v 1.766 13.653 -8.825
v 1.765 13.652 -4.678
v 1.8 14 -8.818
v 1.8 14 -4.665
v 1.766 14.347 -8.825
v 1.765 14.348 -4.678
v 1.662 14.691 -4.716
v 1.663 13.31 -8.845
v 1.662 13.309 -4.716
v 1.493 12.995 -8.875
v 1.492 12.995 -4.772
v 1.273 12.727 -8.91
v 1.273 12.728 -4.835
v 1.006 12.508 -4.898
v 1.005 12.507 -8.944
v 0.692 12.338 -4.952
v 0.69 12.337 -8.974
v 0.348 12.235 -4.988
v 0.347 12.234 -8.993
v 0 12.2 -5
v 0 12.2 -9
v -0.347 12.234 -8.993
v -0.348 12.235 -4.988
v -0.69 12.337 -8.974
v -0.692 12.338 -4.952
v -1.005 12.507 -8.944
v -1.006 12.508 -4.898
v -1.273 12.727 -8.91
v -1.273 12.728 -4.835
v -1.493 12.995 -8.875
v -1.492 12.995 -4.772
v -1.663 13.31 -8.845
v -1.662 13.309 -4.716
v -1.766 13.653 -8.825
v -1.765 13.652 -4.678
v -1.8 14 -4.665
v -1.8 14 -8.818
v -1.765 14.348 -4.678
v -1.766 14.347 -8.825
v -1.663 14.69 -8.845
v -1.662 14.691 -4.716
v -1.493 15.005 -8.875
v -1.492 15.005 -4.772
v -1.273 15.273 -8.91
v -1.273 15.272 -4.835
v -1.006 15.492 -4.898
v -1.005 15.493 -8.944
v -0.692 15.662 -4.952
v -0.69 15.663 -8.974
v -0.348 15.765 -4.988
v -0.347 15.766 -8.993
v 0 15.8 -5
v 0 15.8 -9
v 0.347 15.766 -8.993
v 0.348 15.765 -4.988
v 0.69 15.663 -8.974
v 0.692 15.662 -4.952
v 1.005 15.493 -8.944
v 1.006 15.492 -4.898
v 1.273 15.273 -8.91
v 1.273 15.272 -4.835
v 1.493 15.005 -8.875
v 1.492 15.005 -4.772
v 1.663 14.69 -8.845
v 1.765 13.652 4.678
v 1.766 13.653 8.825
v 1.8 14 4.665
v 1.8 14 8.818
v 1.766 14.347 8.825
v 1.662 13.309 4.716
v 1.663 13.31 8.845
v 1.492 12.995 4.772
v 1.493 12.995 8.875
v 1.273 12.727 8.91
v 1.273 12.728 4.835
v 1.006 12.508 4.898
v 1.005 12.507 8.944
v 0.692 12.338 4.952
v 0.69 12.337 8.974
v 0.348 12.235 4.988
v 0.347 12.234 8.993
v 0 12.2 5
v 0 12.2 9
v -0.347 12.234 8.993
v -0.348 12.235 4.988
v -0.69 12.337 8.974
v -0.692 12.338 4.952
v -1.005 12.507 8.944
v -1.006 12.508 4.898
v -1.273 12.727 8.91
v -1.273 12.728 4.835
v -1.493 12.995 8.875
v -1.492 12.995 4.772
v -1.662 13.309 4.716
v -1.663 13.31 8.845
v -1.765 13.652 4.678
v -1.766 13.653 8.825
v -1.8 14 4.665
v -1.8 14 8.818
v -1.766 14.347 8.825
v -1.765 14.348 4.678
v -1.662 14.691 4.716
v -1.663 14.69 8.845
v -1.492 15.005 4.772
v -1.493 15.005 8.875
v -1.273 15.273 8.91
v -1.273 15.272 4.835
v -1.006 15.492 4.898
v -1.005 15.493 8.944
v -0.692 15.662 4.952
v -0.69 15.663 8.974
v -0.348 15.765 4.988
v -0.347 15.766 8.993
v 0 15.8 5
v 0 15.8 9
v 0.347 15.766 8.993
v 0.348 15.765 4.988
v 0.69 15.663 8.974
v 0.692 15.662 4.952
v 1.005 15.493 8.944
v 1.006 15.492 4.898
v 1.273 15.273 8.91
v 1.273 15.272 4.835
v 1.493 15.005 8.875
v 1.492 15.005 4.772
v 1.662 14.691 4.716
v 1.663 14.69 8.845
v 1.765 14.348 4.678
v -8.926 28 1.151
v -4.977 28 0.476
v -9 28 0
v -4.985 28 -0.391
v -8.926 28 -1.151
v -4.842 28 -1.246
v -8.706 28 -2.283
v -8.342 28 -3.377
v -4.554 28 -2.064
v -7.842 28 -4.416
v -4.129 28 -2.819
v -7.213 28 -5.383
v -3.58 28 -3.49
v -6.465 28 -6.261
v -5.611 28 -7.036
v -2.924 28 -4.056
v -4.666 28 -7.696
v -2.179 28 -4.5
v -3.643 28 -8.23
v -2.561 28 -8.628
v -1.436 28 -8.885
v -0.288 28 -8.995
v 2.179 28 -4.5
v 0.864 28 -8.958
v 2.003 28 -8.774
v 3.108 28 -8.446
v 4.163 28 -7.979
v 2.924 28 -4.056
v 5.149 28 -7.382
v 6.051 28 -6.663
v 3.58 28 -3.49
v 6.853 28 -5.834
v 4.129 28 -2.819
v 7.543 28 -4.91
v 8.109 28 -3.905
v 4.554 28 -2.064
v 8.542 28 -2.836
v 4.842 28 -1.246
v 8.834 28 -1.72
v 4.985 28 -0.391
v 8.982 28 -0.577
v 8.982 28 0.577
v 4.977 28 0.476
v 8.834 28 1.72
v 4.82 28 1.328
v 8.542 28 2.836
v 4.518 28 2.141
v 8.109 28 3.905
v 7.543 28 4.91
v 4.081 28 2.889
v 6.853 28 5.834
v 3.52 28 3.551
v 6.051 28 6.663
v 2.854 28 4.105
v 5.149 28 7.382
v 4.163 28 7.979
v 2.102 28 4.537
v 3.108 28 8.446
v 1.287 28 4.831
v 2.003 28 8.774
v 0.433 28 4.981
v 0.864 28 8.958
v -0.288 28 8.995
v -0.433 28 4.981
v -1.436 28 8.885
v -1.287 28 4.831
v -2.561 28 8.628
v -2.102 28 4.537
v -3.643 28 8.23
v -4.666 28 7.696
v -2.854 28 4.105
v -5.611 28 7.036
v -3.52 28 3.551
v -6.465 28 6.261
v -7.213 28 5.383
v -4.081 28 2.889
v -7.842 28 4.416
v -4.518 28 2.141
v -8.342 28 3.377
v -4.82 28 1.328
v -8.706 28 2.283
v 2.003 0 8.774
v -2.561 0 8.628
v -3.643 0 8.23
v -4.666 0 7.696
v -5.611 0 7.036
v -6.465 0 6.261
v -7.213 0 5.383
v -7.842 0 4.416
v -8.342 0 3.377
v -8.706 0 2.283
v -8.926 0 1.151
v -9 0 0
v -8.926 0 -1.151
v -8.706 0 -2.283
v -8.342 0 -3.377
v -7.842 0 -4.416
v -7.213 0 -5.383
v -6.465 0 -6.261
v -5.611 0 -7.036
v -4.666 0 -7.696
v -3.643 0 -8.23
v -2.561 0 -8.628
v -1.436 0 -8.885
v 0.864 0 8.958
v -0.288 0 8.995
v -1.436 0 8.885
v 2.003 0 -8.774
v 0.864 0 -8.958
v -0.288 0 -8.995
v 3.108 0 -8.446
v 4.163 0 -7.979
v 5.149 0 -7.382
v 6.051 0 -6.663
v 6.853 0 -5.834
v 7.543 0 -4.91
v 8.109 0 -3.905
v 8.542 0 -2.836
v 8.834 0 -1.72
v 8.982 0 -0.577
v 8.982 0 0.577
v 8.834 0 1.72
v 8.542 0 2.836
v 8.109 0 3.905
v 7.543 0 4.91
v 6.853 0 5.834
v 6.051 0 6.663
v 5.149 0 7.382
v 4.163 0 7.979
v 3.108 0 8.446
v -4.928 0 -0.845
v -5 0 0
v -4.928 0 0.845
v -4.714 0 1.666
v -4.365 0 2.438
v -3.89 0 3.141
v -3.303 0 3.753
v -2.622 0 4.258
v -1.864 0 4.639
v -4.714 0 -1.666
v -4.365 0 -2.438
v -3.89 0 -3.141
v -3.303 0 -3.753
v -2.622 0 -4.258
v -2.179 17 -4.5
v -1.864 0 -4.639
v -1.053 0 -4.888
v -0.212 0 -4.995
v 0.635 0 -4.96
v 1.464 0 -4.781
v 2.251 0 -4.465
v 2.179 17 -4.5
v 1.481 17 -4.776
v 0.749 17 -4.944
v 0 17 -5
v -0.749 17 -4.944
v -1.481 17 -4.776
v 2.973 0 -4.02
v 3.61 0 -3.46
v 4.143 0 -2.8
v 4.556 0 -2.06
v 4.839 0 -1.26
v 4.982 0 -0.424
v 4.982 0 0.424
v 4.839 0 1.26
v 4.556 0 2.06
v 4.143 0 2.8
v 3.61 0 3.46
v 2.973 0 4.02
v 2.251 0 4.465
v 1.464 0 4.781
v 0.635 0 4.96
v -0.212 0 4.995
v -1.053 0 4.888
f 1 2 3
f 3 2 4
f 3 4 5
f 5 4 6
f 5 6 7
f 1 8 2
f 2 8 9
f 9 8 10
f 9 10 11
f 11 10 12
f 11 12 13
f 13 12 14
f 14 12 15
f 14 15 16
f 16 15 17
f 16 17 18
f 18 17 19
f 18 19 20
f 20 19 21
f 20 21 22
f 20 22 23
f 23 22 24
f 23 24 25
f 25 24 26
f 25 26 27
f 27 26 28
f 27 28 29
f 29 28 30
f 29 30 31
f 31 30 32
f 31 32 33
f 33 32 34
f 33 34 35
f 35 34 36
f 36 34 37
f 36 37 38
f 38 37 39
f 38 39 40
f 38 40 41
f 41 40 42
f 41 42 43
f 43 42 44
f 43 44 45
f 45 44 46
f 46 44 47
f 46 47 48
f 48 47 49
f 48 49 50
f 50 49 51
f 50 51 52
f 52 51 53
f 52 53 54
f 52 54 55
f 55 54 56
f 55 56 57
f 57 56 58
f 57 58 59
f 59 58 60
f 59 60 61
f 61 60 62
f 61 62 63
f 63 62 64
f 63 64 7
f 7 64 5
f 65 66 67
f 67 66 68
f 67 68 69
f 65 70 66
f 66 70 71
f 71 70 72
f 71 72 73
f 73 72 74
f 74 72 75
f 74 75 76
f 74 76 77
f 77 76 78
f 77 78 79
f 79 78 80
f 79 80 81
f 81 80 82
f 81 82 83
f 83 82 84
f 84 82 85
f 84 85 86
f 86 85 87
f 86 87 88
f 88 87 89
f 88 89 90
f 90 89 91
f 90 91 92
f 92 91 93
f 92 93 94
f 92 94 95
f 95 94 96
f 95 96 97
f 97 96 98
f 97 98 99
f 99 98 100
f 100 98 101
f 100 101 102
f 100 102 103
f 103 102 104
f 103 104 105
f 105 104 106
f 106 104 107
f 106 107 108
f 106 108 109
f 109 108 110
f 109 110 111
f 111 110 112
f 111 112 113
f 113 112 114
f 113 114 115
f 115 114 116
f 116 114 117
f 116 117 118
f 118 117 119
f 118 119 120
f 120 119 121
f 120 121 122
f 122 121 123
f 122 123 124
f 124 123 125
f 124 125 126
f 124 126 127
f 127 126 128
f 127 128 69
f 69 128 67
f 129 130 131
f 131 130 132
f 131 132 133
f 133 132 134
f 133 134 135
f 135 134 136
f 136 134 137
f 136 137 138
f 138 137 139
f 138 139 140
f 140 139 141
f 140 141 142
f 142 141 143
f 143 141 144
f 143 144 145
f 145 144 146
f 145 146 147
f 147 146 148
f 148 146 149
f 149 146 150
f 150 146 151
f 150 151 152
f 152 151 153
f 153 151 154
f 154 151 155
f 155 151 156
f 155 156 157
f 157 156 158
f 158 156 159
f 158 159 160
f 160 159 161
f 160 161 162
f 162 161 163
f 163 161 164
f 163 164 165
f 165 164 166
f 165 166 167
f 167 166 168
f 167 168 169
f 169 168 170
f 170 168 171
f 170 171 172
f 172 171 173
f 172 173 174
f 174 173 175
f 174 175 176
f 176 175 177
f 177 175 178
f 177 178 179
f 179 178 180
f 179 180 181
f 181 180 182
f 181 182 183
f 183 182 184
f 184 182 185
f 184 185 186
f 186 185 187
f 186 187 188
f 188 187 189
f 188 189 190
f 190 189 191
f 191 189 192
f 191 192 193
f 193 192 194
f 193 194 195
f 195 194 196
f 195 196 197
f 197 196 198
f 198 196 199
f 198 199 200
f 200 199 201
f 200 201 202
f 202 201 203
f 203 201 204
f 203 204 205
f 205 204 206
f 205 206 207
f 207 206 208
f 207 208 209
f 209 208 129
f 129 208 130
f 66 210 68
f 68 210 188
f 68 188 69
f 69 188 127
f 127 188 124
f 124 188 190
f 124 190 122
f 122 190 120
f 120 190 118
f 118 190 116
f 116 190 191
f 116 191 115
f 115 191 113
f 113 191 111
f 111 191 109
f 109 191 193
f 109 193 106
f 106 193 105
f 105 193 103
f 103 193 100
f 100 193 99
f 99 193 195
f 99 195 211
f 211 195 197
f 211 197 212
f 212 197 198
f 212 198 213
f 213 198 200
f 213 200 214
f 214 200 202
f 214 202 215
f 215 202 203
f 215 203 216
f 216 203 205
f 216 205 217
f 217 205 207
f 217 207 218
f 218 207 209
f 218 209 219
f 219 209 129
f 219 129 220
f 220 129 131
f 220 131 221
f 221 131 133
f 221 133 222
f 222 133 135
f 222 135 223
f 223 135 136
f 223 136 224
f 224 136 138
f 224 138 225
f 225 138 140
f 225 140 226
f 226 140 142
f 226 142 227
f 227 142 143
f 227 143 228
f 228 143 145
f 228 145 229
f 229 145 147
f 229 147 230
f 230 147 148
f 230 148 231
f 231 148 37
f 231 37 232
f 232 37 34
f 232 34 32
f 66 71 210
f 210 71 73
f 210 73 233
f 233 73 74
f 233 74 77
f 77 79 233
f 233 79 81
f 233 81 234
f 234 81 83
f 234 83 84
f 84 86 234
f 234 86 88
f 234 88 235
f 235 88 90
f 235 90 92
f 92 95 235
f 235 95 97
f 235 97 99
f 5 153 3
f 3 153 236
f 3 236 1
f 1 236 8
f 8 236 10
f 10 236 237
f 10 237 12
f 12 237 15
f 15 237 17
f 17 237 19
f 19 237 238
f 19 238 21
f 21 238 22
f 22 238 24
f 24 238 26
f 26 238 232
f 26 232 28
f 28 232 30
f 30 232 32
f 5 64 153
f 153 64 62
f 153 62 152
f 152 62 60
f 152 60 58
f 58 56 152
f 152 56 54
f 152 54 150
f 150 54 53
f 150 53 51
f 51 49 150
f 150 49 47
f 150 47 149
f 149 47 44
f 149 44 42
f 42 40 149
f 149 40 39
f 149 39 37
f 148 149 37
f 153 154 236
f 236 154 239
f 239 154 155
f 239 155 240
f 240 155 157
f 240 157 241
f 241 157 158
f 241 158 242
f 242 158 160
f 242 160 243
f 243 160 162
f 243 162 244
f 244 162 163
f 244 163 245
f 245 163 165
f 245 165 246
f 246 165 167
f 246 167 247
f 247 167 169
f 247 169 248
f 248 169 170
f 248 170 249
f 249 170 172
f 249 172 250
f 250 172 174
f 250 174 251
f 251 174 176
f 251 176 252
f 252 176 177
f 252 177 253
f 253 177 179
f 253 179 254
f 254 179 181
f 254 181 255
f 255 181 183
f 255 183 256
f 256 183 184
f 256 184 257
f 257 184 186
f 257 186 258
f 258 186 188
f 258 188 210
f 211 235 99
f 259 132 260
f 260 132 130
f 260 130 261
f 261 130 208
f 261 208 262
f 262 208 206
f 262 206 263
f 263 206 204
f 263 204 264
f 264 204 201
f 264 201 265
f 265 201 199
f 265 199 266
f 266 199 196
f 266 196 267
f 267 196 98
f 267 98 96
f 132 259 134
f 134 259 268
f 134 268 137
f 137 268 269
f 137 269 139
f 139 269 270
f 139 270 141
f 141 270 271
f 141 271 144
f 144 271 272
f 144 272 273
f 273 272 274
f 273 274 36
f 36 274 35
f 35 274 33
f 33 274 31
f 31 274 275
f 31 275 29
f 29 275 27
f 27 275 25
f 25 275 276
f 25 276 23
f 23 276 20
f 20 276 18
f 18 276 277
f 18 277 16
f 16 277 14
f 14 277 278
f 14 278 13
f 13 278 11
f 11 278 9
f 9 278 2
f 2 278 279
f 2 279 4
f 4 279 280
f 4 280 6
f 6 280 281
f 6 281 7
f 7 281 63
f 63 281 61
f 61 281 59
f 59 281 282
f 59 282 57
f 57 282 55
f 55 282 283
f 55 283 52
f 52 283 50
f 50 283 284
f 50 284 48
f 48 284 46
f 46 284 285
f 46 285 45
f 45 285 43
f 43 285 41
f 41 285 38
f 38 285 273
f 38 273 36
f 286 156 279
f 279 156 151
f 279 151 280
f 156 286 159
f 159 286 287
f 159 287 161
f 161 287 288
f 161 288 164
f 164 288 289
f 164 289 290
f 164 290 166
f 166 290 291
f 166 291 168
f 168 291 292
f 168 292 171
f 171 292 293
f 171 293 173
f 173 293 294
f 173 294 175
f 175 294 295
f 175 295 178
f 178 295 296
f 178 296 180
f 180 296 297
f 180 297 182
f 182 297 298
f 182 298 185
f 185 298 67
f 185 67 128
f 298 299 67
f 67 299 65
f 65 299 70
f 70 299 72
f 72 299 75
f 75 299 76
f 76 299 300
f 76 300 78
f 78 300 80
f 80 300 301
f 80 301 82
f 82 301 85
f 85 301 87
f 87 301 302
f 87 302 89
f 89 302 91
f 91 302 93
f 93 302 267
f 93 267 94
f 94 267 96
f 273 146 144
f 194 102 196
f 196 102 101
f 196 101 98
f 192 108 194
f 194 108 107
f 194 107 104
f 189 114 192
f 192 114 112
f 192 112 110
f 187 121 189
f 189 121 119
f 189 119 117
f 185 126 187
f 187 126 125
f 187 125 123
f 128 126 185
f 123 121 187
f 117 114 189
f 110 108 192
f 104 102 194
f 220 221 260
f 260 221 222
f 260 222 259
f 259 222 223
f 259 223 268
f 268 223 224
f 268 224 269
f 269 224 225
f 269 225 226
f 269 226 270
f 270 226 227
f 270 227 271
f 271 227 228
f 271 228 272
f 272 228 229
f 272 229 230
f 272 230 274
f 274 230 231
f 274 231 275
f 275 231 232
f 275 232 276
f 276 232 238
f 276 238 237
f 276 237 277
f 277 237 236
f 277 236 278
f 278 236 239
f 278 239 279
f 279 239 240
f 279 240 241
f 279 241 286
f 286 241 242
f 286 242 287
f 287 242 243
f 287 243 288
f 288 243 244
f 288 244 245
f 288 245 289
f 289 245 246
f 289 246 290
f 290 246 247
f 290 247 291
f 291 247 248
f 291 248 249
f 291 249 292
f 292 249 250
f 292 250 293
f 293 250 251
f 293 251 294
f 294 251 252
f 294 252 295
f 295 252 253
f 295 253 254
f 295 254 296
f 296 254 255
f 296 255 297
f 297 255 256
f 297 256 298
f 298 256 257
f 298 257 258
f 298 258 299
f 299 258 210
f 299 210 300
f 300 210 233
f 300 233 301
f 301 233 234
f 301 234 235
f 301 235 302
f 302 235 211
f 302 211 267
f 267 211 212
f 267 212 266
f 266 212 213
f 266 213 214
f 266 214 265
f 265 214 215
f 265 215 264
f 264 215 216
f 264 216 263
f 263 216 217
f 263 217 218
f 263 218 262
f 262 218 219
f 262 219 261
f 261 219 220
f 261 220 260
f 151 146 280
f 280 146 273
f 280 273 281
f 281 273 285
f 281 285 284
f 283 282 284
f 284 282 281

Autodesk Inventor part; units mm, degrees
ref_plane "YZ Plane" through (0, 0, 0) normal (1, 0, 0) x (0, 1, 0)
ref_plane "XZ Plane" through (0, 0, 0) normal (0, 1, 0) x (-1, 0, 0)
ref_plane "XY Plane" through (0, 0, 0) normal (0, 0, 1) x (1, 0, 0)
sketch "Sketch1" plane through (0, 0, 0) normal (0, 1, 0) x (-1, 0, 0)
  circle A0 centre (0, 0) radius 5
  circle A1 centre (0, 0) radius 9
  dimension "d0" = 10
  dimension "d1" = 4
extrude "Extrusion1" add sketch "Sketch1" along normal blind 28
sketch "Sketch2" plane through (0, 0, 0) normal (0, 0, 1) x (1, 0, 0)
  line L0 (9, 28) -> (-9, 28) projected
  line L1 (0, 28) -> (0, 0)
  circle A0 centre (0, 14) radius 1.8
  dimension "d4" = 3.6
extrude "Extrusion2" cut sketch "Sketch2" along normal mid plane 20
sketch "Sketch4" plane through (0, 28, 0) normal (0, 1, 0) x (1, 0, 0)
  line L0 (2.1794, 4.5) -> (-2.1794, 4.5)
  arc A0 (2.1794, 4.5) -> (-2.1794, 4.5) centre (0, 0) ccw
extrude "Extrusion3" add sketch "Sketch4" against normal blind 11
properties part number "shaft_connector"
